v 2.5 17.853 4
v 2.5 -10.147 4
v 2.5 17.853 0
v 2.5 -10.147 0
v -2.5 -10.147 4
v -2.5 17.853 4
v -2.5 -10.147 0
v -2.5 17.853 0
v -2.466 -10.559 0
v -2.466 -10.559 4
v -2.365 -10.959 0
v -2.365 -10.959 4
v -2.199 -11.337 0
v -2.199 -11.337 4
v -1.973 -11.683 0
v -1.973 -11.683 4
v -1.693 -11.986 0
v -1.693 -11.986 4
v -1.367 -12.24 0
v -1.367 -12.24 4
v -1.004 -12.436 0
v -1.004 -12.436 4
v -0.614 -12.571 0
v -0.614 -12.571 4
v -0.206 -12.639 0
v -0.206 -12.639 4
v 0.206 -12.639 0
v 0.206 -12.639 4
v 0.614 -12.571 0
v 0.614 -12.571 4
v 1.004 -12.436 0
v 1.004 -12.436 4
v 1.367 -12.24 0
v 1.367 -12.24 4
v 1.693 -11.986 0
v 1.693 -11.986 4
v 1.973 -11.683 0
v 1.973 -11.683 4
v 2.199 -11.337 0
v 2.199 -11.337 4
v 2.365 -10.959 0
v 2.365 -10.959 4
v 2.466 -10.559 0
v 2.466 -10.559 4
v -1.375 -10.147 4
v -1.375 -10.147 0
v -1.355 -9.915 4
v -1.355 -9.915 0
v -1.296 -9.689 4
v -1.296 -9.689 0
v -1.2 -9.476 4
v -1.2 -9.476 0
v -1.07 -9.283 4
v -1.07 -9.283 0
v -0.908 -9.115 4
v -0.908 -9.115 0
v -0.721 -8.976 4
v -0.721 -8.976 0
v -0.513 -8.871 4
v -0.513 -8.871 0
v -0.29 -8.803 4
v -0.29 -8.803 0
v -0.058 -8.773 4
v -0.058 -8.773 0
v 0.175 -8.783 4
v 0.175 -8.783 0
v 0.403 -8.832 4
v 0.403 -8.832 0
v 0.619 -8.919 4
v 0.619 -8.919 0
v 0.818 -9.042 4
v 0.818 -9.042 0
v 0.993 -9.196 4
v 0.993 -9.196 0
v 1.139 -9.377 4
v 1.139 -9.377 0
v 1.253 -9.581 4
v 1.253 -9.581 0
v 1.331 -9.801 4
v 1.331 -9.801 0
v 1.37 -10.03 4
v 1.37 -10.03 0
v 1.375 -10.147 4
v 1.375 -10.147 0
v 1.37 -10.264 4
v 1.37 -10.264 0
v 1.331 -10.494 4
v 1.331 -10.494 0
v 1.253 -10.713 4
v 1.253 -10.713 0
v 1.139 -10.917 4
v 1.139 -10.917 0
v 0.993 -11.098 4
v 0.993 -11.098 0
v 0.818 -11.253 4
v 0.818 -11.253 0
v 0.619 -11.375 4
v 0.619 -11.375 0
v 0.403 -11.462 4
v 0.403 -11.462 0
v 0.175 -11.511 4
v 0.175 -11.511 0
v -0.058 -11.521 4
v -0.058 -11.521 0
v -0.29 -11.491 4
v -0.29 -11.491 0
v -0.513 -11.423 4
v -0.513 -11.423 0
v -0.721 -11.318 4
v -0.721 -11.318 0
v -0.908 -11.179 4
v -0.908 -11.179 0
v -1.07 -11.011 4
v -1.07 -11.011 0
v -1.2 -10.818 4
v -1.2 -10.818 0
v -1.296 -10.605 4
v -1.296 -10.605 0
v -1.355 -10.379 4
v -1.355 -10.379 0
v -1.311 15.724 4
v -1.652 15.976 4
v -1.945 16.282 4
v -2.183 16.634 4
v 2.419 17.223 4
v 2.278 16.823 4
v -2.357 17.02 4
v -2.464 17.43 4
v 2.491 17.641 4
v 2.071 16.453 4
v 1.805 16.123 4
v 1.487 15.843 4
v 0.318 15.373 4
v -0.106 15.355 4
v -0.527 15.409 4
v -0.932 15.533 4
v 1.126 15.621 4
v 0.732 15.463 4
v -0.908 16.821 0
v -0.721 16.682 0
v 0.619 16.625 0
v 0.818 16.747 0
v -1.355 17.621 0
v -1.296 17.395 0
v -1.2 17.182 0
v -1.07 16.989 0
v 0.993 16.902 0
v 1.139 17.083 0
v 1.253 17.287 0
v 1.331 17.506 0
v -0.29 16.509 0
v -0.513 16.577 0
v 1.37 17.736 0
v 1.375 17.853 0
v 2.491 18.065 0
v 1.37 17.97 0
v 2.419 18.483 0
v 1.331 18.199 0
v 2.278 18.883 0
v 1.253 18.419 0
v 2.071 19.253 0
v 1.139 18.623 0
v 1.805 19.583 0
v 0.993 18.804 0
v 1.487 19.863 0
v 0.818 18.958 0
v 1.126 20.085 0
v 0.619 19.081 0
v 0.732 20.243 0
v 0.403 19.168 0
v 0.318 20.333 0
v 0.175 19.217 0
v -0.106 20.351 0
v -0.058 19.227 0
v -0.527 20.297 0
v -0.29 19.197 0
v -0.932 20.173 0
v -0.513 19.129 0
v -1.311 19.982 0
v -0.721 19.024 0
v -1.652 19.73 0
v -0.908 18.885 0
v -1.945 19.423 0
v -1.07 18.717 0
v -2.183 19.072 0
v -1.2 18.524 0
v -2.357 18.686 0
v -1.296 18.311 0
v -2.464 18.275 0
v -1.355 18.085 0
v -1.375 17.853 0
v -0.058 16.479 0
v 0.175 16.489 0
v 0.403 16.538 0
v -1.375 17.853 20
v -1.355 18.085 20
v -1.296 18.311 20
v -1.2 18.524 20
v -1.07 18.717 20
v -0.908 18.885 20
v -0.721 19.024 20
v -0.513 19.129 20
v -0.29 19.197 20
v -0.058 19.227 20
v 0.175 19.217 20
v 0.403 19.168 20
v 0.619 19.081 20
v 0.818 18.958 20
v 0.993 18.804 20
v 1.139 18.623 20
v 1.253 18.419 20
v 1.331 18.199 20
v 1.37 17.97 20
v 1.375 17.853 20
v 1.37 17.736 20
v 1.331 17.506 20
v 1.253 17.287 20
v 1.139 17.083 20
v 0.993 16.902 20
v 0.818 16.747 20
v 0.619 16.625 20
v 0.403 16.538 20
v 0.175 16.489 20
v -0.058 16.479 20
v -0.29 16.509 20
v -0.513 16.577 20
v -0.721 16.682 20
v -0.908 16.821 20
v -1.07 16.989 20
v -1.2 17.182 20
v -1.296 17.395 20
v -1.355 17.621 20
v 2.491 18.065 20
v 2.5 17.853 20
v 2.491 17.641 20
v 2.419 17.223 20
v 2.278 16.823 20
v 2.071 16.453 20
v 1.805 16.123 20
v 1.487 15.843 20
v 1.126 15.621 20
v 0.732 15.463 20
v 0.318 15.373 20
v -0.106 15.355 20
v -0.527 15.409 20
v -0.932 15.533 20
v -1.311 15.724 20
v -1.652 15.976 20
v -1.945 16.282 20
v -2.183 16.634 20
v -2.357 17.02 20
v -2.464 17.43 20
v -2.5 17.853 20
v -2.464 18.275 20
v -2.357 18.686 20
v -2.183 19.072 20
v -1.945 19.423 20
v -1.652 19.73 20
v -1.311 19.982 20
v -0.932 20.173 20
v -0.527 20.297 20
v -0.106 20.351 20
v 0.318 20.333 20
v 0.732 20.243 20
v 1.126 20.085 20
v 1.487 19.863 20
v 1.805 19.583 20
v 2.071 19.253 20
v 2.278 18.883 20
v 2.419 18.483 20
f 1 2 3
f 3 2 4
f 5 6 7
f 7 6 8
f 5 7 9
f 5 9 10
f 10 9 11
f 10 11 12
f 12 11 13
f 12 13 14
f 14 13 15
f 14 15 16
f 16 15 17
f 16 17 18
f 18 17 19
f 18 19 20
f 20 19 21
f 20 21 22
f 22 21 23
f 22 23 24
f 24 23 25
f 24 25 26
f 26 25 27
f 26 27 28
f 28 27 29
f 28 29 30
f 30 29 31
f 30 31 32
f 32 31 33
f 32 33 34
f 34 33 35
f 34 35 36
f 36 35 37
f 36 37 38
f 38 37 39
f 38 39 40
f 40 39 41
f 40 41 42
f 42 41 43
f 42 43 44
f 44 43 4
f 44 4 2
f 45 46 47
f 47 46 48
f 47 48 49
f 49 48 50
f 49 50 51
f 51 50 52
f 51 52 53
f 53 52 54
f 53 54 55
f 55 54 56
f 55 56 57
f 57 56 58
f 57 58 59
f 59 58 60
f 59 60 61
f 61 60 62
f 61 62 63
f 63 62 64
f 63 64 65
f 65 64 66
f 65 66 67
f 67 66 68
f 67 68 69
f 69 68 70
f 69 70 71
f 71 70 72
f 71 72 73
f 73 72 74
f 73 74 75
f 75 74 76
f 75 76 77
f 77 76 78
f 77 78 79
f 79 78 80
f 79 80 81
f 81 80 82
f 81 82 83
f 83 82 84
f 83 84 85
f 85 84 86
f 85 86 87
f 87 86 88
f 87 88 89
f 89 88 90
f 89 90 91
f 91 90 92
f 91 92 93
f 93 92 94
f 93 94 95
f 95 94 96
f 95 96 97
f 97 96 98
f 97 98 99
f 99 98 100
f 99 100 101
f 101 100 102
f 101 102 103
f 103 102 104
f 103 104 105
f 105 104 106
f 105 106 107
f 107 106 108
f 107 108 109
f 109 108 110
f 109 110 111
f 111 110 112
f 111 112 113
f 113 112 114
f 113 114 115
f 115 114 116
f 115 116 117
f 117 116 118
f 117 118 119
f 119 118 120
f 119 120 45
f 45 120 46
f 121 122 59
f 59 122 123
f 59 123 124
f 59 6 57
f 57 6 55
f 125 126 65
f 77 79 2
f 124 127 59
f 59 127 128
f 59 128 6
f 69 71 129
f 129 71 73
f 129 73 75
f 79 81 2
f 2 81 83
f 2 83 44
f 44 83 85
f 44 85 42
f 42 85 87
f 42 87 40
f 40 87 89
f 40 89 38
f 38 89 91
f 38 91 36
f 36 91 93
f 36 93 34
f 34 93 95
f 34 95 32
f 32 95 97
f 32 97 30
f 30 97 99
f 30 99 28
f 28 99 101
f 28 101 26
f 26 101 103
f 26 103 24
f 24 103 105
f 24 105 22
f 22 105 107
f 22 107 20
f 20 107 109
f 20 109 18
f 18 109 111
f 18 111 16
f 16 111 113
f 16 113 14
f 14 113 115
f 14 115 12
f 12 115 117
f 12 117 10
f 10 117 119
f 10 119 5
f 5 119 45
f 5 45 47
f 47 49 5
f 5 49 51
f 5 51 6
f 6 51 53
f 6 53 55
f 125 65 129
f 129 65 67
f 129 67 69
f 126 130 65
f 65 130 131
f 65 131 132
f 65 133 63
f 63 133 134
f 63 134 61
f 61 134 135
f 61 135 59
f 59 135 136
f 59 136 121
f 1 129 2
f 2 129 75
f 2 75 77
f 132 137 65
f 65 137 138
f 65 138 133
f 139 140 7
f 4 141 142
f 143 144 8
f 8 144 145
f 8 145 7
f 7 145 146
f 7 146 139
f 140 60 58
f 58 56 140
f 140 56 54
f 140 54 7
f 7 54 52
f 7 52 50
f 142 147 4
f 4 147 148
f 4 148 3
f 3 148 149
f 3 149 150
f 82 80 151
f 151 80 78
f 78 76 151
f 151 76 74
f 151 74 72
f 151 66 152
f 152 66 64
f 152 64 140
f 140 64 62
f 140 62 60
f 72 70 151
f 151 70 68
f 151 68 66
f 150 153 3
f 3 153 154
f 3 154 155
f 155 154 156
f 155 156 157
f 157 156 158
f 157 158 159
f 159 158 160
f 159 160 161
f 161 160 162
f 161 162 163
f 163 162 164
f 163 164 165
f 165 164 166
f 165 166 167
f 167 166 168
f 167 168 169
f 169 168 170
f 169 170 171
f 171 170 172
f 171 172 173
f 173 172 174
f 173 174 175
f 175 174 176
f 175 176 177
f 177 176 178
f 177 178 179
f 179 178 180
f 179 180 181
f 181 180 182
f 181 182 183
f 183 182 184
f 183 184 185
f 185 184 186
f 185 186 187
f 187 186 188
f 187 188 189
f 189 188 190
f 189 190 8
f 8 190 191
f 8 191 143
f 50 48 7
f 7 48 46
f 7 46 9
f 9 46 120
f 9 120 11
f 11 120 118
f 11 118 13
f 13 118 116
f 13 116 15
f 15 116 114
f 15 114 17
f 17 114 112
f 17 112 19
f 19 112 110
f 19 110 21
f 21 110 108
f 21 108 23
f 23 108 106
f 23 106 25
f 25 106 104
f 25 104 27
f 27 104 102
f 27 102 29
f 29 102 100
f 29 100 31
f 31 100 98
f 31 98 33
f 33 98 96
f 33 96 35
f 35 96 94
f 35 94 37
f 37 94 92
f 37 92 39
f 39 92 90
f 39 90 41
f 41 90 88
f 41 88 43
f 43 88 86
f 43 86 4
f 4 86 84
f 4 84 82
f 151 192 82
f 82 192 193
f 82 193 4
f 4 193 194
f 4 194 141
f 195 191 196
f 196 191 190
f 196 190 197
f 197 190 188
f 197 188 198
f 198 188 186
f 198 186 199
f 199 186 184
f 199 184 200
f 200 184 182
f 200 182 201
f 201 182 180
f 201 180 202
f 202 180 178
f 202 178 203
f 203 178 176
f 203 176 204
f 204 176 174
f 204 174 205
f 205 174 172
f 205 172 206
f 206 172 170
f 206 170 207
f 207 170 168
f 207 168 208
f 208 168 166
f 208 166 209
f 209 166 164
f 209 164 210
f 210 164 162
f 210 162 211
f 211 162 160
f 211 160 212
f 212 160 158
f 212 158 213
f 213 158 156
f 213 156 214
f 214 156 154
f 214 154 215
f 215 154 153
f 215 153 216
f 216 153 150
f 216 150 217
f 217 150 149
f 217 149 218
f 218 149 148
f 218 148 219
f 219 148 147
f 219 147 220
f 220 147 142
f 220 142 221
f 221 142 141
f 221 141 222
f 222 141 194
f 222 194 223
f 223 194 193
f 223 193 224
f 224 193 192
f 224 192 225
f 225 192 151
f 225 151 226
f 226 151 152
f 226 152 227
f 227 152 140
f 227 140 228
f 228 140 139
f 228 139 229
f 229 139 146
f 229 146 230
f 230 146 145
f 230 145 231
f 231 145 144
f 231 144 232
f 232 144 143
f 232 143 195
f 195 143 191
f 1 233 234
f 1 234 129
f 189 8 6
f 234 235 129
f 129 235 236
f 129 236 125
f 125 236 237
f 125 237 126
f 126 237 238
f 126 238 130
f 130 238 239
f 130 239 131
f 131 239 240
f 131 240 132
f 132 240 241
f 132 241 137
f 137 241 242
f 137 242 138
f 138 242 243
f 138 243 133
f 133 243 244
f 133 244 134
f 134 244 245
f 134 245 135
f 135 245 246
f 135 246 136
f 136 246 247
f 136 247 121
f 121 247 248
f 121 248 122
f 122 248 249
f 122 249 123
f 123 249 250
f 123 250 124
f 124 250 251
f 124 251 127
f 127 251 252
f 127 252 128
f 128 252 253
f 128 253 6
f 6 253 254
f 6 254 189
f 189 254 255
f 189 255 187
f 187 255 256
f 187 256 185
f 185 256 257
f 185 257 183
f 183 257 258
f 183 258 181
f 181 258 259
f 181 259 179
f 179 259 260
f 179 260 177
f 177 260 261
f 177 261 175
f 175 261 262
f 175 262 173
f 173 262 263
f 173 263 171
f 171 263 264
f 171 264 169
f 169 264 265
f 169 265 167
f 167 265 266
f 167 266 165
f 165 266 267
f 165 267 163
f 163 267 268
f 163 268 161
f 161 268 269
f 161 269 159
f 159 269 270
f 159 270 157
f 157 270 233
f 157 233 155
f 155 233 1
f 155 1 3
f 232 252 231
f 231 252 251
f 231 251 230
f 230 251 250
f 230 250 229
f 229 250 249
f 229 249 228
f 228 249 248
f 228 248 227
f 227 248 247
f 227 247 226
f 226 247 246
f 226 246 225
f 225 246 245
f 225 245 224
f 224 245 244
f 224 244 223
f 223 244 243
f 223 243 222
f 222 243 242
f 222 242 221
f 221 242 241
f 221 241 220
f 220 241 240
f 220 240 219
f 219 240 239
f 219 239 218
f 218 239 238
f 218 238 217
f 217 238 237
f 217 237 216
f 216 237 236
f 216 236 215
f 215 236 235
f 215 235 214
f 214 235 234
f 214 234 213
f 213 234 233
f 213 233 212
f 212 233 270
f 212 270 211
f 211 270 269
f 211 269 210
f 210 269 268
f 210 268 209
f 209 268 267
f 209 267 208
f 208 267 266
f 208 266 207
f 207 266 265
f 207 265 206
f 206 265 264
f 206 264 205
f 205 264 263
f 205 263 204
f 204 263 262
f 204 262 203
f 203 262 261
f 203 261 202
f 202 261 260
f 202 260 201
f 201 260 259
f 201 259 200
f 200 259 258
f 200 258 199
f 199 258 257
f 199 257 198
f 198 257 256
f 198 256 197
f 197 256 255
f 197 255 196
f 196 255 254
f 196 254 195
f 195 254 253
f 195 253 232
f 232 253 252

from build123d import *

# Parameters (mm, degrees)
SKETCH1_R           = 1.375
BOSS_EXTRUDE3_DEPTH = 4
SKETCH1_6_R         = 1.375
BOSS_EXTRUDE4_DEPTH = 20


with BuildPart() as part:
    # Sketch1 → Boss-Extrude3 (new body)
    with BuildSketch(Plane.XY):
        with BuildLine():
            Line((-2.5, 17.852941176), (-2.5, -10.147058824))
            ThreePointArc((-2.5, -10.147058824), (0, -12.647058824), (2.5, -10.147058824))
            Line((2.5, -10.147058824), (2.5, 17.852941176))
            ThreePointArc((2.5, 17.852941176), (0, 15.352941176), (-2.5, 17.852941176))
        make_face()
        with Locations((0, -10.147058824)):
            Circle(SKETCH1_R, mode=Mode.SUBTRACT)
    extrude(amount=BOSS_EXTRUDE3_DEPTH)

    # Sketch1<6> → Boss-Extrude4 (add)
    with BuildSketch(Plane.XY):
        with BuildLine():
            ThreePointArc((2.5, 17.852941176), (0, 20.352941176), (-2.5, 17.852941176))
            ThreePointArc((-2.5, 17.852941176), (0, 15.352941176), (2.5, 17.852941176))
        make_face()
        with Locations((0, 17.852941176)):
            Circle(SKETCH1_6_R, mode=Mode.SUBTRACT)
    extrude(amount=BOSS_EXTRUDE4_DEPTH)


solid = part.part
